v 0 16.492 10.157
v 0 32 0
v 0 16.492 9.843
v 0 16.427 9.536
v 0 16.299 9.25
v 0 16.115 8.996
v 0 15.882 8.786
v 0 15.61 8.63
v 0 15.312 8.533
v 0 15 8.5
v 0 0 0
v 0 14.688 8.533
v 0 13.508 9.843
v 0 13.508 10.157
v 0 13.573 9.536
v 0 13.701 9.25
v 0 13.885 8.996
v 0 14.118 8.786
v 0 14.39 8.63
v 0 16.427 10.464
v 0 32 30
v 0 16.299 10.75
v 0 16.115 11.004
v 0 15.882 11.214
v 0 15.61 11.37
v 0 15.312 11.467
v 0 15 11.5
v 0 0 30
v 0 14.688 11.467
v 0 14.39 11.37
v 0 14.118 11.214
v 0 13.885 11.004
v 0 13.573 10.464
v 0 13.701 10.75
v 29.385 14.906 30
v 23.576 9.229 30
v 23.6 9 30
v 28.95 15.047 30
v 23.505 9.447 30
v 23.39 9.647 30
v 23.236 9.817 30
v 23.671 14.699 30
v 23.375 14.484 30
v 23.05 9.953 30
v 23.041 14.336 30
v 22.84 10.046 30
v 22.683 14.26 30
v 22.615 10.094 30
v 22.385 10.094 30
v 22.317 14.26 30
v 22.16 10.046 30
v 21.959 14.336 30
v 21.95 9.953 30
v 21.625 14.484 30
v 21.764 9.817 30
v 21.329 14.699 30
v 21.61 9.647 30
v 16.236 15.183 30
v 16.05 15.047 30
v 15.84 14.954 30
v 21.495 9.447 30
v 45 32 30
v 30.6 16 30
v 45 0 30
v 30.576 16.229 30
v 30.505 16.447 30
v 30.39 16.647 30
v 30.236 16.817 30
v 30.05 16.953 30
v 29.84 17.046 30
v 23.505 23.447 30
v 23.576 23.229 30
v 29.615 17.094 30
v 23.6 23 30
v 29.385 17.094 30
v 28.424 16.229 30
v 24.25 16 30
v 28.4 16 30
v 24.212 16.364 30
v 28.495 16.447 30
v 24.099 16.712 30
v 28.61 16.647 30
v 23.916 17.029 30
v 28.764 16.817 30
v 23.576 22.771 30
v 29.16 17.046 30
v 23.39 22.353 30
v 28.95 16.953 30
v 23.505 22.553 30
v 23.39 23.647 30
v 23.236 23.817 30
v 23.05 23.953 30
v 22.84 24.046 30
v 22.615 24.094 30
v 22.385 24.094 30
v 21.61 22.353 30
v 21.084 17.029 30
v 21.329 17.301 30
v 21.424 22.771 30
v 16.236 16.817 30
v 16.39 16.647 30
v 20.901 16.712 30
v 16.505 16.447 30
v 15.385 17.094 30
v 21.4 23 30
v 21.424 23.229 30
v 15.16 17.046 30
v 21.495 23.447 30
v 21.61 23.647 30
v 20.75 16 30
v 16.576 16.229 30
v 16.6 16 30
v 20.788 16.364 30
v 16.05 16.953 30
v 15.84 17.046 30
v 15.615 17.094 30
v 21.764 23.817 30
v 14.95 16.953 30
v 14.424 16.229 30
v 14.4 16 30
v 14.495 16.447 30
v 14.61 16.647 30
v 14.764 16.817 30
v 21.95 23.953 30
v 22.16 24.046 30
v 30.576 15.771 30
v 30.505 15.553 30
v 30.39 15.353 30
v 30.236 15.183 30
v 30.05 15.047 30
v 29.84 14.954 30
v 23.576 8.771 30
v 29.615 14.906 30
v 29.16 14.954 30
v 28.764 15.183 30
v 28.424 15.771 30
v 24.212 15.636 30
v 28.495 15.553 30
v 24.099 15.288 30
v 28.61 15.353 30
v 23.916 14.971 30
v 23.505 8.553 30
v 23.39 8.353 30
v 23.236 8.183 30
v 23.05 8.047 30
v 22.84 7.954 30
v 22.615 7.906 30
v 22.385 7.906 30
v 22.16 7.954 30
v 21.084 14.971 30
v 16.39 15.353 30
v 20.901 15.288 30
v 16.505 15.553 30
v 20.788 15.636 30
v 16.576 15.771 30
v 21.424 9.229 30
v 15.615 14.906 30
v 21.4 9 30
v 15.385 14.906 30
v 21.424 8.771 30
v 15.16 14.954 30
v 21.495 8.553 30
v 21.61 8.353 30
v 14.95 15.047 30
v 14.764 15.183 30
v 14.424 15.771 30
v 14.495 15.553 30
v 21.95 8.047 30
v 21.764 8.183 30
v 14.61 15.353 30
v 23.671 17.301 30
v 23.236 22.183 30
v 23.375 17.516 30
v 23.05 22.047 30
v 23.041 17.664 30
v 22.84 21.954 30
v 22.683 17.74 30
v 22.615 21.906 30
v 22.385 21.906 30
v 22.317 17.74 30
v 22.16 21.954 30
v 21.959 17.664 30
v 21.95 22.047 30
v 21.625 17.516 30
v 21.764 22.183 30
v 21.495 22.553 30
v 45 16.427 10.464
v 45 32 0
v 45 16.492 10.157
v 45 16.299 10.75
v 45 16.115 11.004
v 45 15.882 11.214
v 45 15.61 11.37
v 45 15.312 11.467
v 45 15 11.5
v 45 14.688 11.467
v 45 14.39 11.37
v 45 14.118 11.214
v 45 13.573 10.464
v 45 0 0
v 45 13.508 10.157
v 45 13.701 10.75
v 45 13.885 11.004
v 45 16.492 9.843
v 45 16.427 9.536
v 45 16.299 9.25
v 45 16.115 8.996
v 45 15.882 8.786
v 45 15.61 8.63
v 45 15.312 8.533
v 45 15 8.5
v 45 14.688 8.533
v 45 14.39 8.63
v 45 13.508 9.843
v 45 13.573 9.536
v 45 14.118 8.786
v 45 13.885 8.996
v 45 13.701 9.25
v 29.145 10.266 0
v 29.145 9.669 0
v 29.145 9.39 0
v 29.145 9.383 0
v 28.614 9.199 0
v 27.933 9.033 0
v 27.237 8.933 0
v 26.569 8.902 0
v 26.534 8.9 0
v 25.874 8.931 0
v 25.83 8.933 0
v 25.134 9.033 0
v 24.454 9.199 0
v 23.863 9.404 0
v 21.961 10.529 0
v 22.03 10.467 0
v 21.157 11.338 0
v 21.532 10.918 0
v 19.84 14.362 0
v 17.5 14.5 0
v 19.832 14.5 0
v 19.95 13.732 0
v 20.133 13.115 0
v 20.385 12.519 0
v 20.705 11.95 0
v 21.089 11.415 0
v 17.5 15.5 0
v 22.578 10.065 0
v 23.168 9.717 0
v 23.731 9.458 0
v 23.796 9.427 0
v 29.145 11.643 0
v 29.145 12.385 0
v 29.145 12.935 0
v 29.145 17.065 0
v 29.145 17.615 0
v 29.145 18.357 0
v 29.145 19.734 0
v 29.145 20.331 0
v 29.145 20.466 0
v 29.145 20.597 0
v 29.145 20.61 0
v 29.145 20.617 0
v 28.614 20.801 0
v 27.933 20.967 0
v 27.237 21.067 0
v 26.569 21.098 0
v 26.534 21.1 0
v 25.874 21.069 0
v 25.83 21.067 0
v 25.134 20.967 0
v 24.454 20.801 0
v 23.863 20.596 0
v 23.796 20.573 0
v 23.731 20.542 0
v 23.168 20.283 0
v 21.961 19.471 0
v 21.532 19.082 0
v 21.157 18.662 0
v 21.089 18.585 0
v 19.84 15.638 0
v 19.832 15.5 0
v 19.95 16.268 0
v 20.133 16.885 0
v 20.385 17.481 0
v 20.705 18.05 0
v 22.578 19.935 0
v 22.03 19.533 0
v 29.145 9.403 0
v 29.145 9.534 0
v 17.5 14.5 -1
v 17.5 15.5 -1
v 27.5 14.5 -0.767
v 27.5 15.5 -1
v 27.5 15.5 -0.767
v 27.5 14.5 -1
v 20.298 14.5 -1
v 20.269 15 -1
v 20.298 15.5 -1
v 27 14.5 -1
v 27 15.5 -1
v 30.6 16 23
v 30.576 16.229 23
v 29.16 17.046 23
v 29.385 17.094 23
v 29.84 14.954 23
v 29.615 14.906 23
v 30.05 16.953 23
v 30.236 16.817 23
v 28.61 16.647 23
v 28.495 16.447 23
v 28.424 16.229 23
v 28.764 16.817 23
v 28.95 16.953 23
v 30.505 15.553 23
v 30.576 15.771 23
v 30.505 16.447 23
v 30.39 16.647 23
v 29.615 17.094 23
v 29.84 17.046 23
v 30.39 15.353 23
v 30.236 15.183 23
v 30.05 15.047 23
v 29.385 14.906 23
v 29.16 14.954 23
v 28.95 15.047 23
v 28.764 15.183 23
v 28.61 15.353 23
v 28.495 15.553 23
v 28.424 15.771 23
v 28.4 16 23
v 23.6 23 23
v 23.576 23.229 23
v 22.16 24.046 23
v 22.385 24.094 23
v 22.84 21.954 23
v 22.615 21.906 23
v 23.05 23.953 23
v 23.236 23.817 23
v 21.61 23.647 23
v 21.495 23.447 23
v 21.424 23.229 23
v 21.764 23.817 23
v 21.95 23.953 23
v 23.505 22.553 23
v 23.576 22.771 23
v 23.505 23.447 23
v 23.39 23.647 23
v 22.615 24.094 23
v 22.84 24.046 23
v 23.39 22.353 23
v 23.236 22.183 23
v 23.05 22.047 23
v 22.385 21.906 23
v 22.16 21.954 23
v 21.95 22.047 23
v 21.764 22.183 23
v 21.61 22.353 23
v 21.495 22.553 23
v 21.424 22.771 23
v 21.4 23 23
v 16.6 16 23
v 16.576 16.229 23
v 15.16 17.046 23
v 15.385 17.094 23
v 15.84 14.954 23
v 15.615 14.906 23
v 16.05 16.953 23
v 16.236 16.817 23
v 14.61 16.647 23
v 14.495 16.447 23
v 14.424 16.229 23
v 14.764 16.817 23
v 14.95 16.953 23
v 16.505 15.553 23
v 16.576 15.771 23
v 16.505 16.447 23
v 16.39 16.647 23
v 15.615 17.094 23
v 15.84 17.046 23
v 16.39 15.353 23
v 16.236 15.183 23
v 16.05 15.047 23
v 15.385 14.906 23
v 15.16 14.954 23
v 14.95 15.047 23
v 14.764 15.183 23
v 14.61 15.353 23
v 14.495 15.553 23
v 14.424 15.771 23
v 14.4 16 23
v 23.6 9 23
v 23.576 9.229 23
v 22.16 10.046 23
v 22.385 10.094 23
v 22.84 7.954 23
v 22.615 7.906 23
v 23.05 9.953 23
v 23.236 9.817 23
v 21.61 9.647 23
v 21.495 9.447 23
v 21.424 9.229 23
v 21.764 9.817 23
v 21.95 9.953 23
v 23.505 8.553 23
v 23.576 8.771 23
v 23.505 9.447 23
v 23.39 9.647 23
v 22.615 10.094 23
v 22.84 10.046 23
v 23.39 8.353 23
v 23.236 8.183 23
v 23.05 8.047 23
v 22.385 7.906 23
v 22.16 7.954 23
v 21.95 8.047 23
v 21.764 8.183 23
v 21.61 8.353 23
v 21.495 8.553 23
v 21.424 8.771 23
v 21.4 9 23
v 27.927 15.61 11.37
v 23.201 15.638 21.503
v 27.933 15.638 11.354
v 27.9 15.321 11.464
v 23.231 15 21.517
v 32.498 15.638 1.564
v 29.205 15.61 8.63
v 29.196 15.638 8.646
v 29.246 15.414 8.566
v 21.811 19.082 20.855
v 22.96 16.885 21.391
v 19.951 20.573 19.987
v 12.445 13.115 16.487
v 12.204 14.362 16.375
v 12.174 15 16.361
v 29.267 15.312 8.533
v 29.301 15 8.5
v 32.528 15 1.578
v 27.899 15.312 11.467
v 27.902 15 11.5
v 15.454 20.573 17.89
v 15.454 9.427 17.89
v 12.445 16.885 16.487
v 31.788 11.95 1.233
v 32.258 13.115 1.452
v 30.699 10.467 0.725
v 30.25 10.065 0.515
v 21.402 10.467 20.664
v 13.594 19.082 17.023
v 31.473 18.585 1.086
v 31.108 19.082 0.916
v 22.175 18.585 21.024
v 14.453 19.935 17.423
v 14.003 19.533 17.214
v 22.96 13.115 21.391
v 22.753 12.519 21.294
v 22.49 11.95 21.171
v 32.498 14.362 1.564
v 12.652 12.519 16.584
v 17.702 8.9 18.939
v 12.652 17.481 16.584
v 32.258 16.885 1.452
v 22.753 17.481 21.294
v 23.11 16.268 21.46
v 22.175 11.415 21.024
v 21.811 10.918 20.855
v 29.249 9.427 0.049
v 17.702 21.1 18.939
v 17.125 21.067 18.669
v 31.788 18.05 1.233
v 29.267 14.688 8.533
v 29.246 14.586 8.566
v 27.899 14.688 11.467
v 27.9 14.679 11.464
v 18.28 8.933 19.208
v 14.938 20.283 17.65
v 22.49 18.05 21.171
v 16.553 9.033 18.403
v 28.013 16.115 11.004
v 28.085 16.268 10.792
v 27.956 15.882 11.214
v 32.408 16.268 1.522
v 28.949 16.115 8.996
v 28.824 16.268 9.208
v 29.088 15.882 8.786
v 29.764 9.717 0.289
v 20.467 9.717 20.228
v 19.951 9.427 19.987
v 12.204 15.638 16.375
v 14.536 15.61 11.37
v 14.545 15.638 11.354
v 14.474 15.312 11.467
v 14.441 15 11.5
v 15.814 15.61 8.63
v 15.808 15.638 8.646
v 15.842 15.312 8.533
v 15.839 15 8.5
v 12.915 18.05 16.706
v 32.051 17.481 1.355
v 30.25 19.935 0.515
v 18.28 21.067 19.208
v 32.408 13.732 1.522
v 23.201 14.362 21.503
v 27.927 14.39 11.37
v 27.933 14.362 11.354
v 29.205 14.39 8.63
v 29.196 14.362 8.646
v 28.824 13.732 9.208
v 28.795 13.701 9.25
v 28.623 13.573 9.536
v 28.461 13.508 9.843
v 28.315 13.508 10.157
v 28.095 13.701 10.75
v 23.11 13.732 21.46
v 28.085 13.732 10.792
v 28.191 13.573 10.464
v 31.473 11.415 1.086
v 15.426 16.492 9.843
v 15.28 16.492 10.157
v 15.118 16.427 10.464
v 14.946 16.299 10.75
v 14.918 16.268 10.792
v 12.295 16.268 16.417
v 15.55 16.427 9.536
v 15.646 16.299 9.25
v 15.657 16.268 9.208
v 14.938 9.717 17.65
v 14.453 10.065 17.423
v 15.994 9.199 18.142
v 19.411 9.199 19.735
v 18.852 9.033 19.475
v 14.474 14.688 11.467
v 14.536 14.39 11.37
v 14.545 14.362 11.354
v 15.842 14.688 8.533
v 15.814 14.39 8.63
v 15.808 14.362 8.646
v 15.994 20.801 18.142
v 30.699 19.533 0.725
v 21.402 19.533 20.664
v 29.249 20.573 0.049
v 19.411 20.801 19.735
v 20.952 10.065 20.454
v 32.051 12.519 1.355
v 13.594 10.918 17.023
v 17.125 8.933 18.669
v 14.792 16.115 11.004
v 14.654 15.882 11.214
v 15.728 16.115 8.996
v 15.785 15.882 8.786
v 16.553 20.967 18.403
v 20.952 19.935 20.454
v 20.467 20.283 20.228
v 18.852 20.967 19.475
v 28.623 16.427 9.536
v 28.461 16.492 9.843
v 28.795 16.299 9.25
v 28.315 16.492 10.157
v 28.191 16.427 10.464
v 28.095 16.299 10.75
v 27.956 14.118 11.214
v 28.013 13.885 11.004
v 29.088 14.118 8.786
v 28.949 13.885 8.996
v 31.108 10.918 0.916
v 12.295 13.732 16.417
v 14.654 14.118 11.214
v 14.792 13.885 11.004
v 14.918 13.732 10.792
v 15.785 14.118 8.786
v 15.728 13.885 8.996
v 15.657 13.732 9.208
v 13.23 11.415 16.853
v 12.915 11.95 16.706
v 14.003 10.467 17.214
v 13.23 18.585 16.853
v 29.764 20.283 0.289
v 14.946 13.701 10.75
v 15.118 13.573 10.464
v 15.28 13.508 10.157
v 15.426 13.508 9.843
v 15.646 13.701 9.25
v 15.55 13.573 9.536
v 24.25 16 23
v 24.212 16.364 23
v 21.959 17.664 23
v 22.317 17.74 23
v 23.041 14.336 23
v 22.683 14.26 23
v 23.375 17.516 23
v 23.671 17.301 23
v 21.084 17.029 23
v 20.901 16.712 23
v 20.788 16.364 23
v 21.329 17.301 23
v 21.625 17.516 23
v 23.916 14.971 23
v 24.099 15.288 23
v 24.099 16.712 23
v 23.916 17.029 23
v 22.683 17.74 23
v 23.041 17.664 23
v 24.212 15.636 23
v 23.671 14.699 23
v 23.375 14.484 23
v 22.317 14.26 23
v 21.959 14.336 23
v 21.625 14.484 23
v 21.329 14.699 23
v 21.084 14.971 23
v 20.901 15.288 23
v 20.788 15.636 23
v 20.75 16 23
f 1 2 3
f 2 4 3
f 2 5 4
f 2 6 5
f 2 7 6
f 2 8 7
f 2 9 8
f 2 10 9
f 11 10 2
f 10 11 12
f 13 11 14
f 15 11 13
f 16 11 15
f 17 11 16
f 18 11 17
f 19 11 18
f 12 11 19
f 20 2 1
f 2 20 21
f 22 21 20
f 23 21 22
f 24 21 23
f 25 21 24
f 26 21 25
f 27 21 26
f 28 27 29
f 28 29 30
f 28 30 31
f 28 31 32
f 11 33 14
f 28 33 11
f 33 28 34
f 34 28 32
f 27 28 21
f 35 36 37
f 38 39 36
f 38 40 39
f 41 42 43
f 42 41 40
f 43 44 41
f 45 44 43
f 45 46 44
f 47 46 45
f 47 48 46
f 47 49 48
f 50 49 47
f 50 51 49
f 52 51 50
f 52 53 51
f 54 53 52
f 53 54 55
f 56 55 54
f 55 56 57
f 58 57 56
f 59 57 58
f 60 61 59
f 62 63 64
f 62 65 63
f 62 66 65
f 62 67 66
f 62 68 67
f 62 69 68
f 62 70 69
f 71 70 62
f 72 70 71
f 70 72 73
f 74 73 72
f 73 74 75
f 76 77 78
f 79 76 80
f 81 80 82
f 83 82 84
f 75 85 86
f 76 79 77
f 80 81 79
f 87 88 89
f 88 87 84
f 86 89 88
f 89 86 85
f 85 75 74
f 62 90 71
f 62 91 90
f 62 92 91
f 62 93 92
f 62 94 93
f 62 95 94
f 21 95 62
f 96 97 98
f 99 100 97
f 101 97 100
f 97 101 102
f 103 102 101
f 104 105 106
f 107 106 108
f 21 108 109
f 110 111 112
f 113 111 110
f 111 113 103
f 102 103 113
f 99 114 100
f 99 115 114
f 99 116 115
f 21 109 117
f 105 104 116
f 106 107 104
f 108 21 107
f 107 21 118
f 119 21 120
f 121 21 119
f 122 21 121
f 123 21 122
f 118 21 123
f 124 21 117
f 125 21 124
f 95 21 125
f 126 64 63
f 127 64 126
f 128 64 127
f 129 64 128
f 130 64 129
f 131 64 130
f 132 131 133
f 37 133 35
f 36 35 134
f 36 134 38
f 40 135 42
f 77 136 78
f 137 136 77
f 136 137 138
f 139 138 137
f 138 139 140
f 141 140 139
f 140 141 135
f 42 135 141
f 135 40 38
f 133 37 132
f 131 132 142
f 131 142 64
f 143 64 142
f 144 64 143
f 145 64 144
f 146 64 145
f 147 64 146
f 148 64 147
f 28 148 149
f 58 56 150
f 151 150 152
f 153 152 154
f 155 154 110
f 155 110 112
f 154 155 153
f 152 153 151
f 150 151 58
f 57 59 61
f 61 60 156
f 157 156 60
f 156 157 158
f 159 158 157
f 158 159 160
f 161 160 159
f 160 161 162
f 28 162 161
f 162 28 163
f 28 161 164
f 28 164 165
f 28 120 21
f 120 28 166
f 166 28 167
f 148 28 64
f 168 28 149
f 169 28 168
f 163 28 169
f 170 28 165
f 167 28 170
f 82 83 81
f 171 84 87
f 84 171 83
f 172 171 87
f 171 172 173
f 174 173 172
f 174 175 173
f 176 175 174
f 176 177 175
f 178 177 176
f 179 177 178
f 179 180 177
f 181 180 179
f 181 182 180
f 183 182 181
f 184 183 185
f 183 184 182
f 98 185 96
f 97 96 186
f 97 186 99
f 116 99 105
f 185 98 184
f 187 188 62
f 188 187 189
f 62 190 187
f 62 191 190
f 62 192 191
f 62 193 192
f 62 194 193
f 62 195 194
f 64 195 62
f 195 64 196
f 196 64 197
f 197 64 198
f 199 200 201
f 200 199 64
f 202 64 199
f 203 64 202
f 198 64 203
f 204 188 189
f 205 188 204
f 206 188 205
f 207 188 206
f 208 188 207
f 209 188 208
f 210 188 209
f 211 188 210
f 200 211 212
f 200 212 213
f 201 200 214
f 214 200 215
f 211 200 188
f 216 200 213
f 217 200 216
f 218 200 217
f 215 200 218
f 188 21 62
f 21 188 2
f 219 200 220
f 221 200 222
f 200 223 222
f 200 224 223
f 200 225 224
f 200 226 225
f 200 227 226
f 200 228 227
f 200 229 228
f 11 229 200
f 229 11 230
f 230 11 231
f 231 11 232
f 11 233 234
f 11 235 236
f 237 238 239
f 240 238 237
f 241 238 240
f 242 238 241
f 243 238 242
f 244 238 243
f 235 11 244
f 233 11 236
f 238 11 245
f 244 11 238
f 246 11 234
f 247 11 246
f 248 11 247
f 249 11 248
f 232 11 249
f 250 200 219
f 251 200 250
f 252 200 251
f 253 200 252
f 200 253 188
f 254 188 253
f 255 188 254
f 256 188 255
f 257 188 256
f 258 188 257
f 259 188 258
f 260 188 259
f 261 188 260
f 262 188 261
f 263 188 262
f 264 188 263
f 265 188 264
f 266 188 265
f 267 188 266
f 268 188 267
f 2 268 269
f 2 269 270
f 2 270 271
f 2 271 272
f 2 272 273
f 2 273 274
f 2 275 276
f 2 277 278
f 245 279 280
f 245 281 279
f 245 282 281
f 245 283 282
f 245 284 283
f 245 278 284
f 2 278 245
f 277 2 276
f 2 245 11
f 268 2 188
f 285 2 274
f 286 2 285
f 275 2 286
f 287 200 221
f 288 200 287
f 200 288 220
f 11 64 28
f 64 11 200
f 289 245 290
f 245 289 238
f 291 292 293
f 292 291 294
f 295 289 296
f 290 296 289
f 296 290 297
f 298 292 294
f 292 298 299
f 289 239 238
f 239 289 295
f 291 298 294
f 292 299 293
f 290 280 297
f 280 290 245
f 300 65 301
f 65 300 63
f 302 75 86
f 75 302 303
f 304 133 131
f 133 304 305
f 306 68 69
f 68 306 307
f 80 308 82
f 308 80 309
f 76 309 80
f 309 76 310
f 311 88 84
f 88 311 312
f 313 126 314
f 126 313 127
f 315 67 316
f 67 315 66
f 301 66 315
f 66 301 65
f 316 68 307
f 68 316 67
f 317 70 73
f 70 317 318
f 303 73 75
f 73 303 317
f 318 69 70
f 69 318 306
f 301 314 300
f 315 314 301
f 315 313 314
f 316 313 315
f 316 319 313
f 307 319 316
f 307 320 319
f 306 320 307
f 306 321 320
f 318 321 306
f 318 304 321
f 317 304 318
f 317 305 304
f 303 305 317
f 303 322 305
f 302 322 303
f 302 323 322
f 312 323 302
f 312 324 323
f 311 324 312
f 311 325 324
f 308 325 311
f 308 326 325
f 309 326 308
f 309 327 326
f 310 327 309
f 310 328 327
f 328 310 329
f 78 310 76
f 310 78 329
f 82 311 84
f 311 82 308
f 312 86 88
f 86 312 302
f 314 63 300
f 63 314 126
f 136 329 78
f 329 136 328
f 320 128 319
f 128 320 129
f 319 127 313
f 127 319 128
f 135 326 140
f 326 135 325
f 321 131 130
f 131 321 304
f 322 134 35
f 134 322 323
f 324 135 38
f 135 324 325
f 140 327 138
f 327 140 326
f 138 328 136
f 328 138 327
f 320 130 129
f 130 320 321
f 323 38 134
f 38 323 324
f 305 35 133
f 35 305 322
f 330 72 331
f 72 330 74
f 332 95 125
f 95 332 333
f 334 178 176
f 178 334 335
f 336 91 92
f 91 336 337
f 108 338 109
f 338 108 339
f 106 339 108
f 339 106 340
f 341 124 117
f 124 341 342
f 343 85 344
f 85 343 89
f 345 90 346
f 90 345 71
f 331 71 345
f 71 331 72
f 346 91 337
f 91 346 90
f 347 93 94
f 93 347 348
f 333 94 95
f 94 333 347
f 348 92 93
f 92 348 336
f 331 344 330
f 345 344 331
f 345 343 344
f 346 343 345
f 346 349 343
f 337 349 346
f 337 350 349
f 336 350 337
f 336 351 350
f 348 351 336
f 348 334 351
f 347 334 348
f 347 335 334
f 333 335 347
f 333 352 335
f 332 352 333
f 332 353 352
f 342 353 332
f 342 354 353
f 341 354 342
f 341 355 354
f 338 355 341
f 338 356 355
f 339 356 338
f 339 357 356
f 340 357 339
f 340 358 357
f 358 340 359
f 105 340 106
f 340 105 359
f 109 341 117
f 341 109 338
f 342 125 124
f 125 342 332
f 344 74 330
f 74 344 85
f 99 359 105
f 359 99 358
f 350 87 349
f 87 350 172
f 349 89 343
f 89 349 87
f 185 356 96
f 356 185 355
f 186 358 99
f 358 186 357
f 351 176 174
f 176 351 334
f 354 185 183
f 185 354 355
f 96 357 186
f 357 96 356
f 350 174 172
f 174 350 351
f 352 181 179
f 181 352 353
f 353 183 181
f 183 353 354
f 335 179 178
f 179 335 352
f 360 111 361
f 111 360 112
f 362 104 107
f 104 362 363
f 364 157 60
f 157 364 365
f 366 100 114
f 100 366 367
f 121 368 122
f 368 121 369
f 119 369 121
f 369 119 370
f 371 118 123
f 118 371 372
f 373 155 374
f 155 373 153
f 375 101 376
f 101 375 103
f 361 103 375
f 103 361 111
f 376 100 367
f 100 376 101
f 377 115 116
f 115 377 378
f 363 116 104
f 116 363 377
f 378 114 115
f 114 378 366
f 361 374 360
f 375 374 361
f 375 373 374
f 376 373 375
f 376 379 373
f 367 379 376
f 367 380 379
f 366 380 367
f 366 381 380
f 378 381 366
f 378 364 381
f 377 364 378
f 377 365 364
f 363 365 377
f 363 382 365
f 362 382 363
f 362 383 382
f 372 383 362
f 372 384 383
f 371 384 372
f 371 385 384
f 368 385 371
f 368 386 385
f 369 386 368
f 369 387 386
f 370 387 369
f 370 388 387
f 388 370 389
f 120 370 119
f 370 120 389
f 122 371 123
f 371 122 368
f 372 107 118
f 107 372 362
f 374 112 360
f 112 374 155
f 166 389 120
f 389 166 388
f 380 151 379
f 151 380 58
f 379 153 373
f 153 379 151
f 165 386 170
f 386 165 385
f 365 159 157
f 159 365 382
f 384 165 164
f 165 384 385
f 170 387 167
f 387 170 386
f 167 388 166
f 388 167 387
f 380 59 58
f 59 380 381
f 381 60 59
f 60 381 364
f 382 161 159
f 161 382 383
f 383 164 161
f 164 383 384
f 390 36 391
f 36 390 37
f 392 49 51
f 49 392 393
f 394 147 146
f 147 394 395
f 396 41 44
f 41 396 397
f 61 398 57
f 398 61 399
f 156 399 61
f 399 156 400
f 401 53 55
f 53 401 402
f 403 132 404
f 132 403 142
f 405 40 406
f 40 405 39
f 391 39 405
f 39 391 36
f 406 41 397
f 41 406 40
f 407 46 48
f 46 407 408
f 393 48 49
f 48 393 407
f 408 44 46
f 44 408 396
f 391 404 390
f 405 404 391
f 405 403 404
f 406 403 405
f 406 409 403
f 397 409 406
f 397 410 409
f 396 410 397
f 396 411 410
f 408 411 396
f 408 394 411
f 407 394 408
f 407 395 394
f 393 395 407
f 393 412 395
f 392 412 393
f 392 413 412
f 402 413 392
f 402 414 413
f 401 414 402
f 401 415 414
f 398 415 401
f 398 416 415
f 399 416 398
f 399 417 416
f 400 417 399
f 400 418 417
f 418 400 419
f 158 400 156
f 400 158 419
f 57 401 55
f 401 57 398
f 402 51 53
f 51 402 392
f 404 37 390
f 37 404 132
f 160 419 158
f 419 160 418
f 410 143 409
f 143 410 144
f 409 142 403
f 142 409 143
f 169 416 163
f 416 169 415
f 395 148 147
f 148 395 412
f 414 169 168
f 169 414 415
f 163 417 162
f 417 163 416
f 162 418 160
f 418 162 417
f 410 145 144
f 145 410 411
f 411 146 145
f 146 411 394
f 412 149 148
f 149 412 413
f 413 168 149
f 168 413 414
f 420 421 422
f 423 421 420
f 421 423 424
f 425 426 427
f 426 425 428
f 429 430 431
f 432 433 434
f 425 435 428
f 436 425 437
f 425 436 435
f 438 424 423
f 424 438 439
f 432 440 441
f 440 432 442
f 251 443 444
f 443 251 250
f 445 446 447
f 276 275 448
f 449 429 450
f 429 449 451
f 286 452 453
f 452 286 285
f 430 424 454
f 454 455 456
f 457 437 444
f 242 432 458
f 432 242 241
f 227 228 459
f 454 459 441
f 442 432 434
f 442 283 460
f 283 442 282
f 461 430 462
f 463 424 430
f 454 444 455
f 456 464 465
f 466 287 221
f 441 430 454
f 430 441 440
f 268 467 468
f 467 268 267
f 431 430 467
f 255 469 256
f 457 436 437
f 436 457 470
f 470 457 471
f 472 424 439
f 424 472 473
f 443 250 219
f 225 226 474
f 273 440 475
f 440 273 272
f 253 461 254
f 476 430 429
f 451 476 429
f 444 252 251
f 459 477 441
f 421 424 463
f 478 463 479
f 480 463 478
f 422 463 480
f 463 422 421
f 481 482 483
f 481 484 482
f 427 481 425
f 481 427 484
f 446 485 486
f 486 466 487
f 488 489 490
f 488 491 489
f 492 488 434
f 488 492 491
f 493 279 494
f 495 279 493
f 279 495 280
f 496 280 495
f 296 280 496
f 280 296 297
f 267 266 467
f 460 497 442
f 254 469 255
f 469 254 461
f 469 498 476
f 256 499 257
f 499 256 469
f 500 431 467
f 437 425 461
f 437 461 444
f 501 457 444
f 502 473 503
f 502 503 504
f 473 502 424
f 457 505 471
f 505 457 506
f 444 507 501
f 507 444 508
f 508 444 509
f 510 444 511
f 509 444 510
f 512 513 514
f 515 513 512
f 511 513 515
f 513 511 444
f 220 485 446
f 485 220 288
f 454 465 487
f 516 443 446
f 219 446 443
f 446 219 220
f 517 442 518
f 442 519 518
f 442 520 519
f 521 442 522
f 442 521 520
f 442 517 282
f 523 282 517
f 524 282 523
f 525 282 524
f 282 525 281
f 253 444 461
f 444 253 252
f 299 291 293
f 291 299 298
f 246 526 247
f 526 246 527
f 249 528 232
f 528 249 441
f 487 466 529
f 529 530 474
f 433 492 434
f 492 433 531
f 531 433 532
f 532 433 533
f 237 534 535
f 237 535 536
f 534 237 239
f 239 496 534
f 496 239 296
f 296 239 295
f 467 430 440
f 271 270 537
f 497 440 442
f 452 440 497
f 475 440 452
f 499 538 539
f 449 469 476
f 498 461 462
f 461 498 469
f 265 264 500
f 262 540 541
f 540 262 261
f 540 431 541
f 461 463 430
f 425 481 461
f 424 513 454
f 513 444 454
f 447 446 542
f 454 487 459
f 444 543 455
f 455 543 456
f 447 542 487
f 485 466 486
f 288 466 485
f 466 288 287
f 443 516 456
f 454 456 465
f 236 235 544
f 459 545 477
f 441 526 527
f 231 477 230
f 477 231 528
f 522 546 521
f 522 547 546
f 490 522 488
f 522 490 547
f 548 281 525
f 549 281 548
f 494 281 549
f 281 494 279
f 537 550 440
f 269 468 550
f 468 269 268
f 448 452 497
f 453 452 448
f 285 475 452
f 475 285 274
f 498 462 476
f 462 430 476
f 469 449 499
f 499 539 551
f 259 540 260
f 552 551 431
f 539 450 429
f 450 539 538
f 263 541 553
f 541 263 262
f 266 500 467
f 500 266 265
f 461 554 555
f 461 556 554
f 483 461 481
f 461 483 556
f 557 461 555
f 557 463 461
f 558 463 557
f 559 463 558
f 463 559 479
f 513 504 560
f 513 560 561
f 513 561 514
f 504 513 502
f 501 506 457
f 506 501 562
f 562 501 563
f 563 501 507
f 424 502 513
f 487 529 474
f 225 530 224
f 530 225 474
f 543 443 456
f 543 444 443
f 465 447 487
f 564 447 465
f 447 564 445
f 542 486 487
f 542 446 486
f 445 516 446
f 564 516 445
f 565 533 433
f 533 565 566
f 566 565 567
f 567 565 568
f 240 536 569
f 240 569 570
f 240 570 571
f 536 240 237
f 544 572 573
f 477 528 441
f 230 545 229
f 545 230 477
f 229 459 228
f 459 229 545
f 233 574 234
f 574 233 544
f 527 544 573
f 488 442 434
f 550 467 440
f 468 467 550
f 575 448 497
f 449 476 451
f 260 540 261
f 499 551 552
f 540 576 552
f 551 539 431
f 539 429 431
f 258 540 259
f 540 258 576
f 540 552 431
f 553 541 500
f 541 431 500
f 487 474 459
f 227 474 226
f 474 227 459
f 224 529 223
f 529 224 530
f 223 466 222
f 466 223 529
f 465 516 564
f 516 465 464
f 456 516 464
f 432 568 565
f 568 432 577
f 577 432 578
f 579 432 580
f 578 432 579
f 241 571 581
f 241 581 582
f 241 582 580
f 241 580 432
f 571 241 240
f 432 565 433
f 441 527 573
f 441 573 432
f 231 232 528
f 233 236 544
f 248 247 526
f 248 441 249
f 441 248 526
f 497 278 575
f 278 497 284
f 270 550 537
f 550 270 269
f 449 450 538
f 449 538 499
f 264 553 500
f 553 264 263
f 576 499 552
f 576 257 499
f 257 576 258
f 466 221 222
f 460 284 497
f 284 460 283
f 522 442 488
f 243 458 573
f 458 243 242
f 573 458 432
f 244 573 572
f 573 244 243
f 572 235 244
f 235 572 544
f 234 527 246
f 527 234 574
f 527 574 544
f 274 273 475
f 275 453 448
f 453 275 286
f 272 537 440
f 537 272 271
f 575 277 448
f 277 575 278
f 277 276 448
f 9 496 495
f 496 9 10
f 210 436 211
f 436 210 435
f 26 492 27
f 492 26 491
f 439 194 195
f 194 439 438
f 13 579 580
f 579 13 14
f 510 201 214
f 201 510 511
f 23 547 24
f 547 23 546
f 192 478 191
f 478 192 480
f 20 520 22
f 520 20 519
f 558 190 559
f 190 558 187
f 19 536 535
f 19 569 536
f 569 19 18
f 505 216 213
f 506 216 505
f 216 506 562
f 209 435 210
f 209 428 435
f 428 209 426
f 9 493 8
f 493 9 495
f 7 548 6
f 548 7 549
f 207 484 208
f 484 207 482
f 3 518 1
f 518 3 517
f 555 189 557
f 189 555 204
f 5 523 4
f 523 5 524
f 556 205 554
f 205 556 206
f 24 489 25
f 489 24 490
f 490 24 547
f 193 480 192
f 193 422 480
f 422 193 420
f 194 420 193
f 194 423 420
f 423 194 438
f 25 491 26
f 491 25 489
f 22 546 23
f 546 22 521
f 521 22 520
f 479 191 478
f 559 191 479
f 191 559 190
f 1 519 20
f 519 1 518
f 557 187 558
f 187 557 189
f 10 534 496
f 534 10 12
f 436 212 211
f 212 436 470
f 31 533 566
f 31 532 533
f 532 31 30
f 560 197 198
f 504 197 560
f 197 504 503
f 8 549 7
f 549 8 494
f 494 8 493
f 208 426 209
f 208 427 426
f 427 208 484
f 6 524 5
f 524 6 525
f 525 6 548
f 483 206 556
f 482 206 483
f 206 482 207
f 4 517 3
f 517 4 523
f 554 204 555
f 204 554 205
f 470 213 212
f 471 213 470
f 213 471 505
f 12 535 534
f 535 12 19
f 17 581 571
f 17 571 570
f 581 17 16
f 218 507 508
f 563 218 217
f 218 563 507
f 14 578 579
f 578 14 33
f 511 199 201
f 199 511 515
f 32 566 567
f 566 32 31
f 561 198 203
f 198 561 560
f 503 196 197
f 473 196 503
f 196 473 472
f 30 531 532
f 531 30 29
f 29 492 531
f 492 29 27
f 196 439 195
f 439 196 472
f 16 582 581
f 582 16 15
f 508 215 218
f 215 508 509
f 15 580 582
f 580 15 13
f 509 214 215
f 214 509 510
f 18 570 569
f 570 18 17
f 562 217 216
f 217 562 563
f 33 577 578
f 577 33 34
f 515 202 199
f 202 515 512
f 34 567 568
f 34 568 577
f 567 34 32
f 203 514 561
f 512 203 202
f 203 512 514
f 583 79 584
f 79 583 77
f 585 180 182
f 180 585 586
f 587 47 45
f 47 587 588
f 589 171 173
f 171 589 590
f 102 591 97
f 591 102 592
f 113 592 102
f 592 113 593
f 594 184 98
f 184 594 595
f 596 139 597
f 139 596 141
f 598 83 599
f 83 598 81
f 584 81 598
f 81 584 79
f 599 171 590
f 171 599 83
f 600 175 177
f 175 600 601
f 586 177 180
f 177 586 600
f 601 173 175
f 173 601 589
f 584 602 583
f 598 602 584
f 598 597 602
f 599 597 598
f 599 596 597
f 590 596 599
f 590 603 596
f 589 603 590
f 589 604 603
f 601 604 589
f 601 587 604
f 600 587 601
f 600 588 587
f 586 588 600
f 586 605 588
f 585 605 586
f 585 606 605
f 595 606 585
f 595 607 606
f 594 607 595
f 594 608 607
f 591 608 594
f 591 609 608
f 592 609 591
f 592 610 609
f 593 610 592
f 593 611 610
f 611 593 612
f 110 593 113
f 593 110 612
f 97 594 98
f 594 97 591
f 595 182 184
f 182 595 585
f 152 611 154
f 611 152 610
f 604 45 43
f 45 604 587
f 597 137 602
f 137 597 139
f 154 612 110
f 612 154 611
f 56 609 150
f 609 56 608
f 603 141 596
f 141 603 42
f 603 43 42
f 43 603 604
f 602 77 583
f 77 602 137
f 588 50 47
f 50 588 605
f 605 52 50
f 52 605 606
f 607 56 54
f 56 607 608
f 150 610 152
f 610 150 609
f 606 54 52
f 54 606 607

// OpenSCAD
// ============================================================
// Part 4: End-Effector / Needle Holder Bracket
// Remote Surgical Training Arm — Jaycar Servo Edition
// ============================================================
// Print: on its side (bore horizontal) to avoid supports in bore
// Time: ~35 min, ~9g
// ============================================================
// Top face bolts to Horn C on the YM2758 (SG90) shaft.
// Contains a 12mm bore angled at 25° from vertical for the
// needle adapter. Bore centre is offset 15mm from servo axis
// so the needle tip traces an arc when the angle servo rotates.
// ============================================================

// === HORN PARAMETERS (SG90 included horn — typically same 25T) ===
horn_bolt_circle_r = 7.0;   // SG90 horn bolt circle — often smaller, MEASURE
horn_center_hole   = 3.5;   // horn screw access
m2_hole_dia        = 2.2;

// === BRACKET DIMENSIONS ===
bracket_w       = 45;    // X dimension — widened to contain angled bore
bracket_d       = 32;    // Y dimension (matches arm width area)
bracket_h       = 30;    // Z height

// Horn mount pad on top face
horn_pad_h      = 6;     // solid pad thickness at top

// Tool socket bore
bore_dia        = 12.2;  // print oversize — PLA shrinks ~0.2mm → final ~12.0mm ID
bore_depth      = 20;    // bore depth
bore_angle      = 25;    // degrees from vertical (= from Z axis)
bore_offset_y   = 15;    // bore centre offset from servo rotation axis (Y direction)
// Bore entry point shifted right (+X) so the angled bore stays inside the body
// At 25°, the bore drifts sin(25°)*bore_depth = ~8.5mm in X over 20mm depth
bore_entry_x    = 27;    // bore entry X on bottom face — shifted from centre

// M3 set-screw hole for tool retention
set_screw_dia   = 3.0;   // M3 tap-tight in PLA
set_screw_z     = 10;    // distance from bore opening (= from bottom of bracket)

// Vein alignment ridge on bottom face
ridge_h         = 1;
ridge_l         = 10;
ridge_w         = 1;

module end_effector() {
    difference() {
        union() {
            // --- Main body ---
            cube([bracket_w, bracket_d, bracket_h]);
            
            // --- Vein alignment ridge on bottom ---
            translate([
                (bracket_w - ridge_l) / 2,
                bore_offset_y - ridge_w / 2,
                -ridge_h
            ])
                cube([ridge_l, ridge_w, ridge_h]);
        }
        
        // --- Angled bore for needle adapter ---
        // Bore axis is angled 25° from Z (vertical) in the XZ plane
        // Bore enters from the bottom face, angling toward -X
        // Entry point shifted right so bore stays inside body
        translate([bore_entry_x, bore_offset_y, -1])
            rotate([0, -bore_angle, 0])
                cylinder(h = bore_depth + 2, d = bore_dia, $fn = 60);
        
        // --- M3 set-screw hole (perpendicular to bore) ---
        // Enters from the side of the bracket
        // Positioned at set_screw_z from the bore opening (bottom face)
        translate([
            -1,
            bore_offset_y,
            set_screw_z
        ])
            rotate([0, 90, 0])
                cylinder(h = bracket_w + 2, d = set_screw_dia, $fn = 30);
        
        // --- Horn mount holes on top face ---
        // 4× M2 in cross pattern, centred on bracket top
        // The servo rotation axis aligns with the bracket centre
        for (angle = [0, 90, 180, 270])
            translate([
                bracket_w / 2 + horn_bolt_circle_r * cos(angle),
                bracket_d / 2 + horn_bolt_circle_r * sin(angle),
                bracket_h - horn_pad_h - 1
            ])
                cylinder(h = horn_pad_h + 2, d = m2_hole_dia, $fn = 30);
        
        // Horn centre screw access
        translate([bracket_w / 2, bracket_d / 2, bracket_h - horn_pad_h - 1])
            cylinder(h = horn_pad_h + 2, d = horn_center_hole, $fn = 30);
    }
}

end_effector();
